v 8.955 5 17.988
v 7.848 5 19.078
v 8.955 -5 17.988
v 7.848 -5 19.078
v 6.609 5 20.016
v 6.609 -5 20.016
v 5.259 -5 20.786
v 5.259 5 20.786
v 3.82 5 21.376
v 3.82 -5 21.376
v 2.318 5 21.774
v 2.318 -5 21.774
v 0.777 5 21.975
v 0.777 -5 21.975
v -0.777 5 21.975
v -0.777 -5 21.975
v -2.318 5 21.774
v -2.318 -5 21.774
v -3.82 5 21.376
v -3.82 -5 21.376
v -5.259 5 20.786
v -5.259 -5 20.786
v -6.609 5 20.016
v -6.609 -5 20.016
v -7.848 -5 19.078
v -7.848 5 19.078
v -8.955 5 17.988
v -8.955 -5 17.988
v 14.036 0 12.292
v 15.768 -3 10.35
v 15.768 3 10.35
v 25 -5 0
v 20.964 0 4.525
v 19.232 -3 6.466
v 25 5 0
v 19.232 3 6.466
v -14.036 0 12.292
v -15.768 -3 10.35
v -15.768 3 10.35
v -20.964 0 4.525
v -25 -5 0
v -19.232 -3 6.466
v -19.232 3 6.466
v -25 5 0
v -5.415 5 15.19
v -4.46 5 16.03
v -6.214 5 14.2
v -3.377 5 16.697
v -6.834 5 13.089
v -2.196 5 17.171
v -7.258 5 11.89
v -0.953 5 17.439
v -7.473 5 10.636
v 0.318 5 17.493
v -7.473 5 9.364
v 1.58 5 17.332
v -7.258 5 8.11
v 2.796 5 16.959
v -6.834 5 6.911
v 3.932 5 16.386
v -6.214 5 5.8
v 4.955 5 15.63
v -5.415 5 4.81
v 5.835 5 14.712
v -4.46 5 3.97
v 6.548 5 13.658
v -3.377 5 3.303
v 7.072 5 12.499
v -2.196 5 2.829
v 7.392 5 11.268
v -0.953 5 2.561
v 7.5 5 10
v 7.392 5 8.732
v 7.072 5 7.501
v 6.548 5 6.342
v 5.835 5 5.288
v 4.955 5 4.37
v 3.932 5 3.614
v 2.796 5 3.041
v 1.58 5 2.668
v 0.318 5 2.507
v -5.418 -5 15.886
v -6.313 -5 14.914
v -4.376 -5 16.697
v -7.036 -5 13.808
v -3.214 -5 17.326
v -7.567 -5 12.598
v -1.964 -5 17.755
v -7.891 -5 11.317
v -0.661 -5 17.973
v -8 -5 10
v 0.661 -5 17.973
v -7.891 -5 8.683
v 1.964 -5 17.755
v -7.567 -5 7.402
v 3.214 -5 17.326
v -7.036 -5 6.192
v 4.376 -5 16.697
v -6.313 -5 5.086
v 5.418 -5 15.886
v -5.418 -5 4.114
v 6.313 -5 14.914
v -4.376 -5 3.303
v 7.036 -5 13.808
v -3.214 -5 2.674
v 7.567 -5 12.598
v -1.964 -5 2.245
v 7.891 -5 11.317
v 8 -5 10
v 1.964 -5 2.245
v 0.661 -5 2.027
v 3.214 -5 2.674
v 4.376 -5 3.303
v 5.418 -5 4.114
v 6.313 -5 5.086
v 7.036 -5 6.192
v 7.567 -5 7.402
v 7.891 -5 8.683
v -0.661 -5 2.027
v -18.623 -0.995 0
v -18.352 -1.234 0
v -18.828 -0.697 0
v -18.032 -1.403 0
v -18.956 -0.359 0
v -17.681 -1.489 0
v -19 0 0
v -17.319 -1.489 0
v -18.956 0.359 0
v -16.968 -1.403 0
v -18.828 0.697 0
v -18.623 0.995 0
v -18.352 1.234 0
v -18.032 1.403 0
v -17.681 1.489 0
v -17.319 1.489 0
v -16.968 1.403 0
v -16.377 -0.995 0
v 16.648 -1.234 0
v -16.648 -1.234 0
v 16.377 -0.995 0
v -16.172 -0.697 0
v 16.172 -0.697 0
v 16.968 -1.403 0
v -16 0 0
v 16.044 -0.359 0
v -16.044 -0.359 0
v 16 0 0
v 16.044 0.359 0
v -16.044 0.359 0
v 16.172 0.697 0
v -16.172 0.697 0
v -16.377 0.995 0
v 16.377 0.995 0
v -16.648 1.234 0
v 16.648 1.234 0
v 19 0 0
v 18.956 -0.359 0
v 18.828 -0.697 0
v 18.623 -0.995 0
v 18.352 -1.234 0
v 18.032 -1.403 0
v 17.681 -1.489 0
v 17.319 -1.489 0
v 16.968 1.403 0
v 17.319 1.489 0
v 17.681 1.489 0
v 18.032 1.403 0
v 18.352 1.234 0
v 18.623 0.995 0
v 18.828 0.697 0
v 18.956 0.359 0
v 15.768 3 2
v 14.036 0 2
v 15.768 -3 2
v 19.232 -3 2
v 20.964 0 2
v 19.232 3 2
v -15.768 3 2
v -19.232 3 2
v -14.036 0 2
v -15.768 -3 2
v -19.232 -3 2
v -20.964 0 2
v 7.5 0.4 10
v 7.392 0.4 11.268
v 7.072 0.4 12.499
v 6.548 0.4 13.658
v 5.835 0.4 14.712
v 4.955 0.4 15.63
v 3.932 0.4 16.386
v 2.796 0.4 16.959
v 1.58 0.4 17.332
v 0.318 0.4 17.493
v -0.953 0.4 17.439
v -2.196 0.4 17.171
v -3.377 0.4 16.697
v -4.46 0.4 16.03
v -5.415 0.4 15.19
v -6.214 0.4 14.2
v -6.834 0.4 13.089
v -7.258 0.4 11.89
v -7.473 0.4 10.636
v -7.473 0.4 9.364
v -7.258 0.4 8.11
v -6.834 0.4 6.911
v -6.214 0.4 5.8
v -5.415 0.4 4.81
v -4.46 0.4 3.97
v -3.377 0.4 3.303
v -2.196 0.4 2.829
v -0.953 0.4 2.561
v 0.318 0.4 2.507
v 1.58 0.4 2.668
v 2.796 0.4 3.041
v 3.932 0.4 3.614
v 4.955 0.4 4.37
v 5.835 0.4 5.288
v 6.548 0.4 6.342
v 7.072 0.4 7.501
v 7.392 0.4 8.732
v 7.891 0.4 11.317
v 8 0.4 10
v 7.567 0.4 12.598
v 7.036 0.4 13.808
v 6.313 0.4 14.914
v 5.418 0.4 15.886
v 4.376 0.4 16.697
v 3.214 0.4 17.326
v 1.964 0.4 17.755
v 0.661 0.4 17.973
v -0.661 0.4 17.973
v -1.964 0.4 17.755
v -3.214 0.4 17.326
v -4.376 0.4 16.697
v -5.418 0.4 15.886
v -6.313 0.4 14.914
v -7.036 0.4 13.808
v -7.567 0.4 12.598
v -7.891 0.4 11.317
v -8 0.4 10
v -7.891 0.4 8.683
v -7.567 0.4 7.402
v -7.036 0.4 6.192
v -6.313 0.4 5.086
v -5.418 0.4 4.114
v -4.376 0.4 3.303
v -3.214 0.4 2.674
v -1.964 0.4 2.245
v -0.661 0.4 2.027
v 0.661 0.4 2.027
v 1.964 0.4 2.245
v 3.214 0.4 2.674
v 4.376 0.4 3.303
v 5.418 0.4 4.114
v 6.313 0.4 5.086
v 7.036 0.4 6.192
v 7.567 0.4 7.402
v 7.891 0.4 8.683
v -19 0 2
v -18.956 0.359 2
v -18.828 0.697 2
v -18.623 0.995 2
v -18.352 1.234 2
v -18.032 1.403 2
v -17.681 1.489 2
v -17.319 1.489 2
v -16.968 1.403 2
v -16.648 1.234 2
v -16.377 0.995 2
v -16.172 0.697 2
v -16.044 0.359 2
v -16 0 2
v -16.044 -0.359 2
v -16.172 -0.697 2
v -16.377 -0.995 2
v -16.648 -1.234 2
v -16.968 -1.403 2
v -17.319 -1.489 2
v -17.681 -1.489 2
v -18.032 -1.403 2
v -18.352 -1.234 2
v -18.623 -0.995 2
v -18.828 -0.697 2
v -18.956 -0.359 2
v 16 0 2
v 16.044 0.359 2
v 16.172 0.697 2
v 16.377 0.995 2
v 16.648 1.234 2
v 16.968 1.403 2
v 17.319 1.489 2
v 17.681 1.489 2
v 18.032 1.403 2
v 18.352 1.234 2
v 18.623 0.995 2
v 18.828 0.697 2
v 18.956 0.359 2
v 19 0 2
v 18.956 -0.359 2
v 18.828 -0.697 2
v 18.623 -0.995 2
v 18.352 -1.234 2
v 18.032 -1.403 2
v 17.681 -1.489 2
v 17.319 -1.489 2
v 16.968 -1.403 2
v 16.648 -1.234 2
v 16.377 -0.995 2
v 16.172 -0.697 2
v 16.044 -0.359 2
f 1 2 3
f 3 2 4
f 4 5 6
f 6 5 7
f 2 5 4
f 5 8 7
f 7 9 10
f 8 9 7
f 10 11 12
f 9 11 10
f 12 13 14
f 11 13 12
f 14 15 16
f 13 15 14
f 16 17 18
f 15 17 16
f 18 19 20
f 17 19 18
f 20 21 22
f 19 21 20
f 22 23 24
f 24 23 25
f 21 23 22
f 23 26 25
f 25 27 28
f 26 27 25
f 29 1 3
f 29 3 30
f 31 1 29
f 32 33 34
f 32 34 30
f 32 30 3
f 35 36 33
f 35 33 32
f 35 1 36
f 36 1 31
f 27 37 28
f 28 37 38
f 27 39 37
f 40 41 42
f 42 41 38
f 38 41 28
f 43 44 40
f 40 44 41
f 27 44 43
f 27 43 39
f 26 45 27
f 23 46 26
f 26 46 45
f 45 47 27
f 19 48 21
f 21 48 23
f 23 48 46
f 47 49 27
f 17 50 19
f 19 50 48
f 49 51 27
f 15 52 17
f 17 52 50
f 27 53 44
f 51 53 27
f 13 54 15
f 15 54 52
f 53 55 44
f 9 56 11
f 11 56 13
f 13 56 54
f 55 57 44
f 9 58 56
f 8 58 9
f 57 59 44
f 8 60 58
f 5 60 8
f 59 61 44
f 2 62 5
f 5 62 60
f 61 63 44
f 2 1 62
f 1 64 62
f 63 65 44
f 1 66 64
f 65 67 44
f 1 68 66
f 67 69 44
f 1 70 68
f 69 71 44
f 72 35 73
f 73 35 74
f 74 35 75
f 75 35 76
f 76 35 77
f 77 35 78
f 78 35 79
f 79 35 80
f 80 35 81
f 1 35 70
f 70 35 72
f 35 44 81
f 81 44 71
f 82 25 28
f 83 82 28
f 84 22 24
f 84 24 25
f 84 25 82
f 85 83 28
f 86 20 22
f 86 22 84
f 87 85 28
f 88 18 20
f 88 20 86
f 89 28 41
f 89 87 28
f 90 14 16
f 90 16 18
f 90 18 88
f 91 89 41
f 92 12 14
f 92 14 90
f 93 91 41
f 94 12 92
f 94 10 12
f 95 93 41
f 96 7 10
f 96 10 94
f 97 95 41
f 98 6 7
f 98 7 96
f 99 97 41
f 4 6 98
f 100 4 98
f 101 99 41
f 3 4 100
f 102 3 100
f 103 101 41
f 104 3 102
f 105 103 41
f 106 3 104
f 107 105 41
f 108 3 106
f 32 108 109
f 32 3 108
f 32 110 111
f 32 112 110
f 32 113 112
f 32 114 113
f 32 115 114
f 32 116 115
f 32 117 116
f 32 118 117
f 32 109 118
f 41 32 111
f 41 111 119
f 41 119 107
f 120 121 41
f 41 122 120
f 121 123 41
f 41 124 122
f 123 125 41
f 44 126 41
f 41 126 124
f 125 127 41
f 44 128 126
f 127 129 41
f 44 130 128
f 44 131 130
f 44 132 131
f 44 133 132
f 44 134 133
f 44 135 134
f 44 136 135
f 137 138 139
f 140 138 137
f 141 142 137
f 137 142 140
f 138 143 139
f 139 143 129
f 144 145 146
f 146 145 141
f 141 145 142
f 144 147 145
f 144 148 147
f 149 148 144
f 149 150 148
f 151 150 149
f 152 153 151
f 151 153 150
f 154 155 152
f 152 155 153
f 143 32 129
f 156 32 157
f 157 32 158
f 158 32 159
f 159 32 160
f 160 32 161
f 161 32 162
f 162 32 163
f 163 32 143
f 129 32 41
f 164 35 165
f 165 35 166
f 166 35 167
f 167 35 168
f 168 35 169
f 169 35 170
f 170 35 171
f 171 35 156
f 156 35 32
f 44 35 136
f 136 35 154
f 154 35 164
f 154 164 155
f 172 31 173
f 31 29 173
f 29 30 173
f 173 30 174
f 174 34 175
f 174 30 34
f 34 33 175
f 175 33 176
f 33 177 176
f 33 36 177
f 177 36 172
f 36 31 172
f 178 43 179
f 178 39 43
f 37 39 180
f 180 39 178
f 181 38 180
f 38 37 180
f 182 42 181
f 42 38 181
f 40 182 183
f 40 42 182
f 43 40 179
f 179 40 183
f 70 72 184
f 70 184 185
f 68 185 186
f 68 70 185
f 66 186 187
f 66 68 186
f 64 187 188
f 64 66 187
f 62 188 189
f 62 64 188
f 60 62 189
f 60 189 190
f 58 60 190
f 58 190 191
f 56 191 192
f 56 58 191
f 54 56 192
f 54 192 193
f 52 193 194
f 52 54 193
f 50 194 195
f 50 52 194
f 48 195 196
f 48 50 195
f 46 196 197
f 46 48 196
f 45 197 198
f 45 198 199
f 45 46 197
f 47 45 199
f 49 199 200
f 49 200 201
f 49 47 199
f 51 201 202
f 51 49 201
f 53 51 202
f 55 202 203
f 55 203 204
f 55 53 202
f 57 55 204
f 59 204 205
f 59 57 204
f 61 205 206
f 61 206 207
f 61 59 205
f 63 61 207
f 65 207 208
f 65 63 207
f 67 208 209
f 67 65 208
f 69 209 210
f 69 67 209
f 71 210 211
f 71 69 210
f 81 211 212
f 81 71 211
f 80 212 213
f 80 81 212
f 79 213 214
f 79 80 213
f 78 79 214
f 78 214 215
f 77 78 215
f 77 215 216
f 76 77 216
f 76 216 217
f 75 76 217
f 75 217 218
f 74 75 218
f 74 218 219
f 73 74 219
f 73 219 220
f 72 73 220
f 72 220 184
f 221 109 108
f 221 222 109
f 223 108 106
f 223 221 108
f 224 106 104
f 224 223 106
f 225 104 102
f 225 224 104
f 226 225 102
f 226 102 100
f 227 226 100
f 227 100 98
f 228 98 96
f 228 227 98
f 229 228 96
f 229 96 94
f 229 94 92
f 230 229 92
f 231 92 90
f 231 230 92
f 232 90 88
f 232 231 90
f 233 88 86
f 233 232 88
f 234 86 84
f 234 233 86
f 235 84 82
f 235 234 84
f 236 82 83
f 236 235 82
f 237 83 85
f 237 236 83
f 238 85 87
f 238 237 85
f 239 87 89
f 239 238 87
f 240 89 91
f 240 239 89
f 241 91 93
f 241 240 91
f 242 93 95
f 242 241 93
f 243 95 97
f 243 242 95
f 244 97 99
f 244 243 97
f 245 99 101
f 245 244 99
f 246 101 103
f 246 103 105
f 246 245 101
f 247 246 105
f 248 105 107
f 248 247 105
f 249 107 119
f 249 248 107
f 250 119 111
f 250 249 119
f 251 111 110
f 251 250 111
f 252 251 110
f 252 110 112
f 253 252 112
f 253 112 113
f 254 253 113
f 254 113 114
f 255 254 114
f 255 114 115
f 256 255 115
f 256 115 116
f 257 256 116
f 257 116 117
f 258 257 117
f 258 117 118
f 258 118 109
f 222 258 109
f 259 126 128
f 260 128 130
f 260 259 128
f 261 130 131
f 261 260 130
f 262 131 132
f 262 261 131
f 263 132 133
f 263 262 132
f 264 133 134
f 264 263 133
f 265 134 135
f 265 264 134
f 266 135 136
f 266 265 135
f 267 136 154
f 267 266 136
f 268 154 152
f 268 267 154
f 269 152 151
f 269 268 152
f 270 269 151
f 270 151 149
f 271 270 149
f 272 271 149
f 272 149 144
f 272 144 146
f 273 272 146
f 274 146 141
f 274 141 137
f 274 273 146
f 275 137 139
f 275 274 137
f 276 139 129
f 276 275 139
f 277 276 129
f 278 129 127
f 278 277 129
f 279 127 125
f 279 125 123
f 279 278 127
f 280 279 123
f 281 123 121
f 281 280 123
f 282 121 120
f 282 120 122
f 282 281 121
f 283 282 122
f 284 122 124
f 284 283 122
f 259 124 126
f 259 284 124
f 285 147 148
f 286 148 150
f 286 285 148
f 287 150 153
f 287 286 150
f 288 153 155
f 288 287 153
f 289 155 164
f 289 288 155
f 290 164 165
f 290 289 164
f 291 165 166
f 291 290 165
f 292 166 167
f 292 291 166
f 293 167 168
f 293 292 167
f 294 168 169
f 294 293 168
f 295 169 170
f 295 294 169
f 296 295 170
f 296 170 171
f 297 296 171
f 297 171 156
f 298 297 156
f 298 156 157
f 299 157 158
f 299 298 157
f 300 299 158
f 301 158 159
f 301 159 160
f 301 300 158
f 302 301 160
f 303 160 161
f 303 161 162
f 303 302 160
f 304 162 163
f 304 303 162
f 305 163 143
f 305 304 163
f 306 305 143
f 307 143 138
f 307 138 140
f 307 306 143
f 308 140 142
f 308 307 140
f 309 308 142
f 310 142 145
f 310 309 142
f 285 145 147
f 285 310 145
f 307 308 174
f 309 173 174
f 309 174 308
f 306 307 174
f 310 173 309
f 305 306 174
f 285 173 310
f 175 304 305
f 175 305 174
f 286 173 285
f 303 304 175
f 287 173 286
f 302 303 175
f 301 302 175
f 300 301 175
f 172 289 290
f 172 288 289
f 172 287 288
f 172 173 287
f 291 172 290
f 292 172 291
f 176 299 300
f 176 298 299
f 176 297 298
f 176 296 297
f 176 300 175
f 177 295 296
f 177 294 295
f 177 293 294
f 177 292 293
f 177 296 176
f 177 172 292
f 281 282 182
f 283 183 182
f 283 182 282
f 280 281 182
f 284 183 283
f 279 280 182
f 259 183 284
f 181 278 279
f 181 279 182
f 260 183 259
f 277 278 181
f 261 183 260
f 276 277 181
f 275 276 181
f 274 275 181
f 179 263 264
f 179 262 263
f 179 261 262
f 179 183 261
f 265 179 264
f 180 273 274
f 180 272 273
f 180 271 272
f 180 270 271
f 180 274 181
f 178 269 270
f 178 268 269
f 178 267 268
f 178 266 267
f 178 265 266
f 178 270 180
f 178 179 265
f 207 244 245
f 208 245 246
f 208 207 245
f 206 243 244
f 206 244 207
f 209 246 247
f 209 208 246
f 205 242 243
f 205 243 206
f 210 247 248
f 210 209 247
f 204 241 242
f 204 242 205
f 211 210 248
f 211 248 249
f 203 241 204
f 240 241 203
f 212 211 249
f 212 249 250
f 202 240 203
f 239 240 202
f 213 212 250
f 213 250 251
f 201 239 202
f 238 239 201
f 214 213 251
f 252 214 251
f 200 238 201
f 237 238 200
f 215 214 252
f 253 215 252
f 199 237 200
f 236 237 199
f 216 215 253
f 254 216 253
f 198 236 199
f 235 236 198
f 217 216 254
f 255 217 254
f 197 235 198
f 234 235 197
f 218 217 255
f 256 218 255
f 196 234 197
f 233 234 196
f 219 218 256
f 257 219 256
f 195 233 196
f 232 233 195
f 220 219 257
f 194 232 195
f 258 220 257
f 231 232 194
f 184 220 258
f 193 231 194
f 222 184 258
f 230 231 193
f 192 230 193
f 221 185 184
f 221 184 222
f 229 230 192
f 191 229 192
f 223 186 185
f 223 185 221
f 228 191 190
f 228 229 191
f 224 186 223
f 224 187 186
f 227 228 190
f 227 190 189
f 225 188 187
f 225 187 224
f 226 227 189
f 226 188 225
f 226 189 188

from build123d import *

# Parameters (mm, degrees)
PAD_DEPTH        = 5
HOLE_D           = 15
HOLE_CBORE_D     = 16
HOLE_CBORE_DEPTH = 5.4
SKETCH002_R      = 1.5
HOLE001_DEPTH    = 25
POCKET_DEPTH     = 18


with BuildPart() as part:
    # Sketch → Pad (new body, symmetric)
    with BuildSketch(Plane.XZ):
        with BuildLine():
            Line((-25, 0), (25, 0))
            Line((8.955135, 17.987838), (25, 0))
            ThreePointArc((8.955135, 17.987838), (0, 22), (-8.955135, 17.987838))
            Line((-8.955135, 17.987838), (-25, 0))
        make_face()
    extrude(amount=PAD_DEPTH, both=True)

    # Hole (through all)
    with Locations(Plane.XZ.offset(5)):
        with Locations((0, 10)):
            CounterBoreHole(HOLE_D / 2, HOLE_CBORE_D / 2, HOLE_CBORE_DEPTH)

    # Sketch002 (on Face6 of Hole) → Hole001 (cut)
    with BuildSketch(Plane(origin=(0, 0, 0), x_dir=(1, 0, 0), z_dir=(0, 0, -1))):
        with Locations((-17.5, 0)):
            Circle(SKETCH002_R)
        with Locations((17.5, 0)):
            Circle(SKETCH002_R)
    extrude(amount=-HOLE001_DEPTH, mode=Mode.SUBTRACT)

    # Sketch003 → Pocket (cut)
    with BuildSketch(Plane.XY.offset(20)):
        Polygon((-15.767949, 3), (-19.232051, 3), (-20.964102, 0), (-19.232051, -3), (-15.767949, -3), (-14.035898, 0), align=None)
        Polygon((15.767949, 3), (14.035898, 0), (15.767949, -3), (19.232051, -3), (20.964102, 0), (19.232051, 3), align=None)
    extrude(amount=-POCKET_DEPTH, mode=Mode.SUBTRACT)


solid = part.part
